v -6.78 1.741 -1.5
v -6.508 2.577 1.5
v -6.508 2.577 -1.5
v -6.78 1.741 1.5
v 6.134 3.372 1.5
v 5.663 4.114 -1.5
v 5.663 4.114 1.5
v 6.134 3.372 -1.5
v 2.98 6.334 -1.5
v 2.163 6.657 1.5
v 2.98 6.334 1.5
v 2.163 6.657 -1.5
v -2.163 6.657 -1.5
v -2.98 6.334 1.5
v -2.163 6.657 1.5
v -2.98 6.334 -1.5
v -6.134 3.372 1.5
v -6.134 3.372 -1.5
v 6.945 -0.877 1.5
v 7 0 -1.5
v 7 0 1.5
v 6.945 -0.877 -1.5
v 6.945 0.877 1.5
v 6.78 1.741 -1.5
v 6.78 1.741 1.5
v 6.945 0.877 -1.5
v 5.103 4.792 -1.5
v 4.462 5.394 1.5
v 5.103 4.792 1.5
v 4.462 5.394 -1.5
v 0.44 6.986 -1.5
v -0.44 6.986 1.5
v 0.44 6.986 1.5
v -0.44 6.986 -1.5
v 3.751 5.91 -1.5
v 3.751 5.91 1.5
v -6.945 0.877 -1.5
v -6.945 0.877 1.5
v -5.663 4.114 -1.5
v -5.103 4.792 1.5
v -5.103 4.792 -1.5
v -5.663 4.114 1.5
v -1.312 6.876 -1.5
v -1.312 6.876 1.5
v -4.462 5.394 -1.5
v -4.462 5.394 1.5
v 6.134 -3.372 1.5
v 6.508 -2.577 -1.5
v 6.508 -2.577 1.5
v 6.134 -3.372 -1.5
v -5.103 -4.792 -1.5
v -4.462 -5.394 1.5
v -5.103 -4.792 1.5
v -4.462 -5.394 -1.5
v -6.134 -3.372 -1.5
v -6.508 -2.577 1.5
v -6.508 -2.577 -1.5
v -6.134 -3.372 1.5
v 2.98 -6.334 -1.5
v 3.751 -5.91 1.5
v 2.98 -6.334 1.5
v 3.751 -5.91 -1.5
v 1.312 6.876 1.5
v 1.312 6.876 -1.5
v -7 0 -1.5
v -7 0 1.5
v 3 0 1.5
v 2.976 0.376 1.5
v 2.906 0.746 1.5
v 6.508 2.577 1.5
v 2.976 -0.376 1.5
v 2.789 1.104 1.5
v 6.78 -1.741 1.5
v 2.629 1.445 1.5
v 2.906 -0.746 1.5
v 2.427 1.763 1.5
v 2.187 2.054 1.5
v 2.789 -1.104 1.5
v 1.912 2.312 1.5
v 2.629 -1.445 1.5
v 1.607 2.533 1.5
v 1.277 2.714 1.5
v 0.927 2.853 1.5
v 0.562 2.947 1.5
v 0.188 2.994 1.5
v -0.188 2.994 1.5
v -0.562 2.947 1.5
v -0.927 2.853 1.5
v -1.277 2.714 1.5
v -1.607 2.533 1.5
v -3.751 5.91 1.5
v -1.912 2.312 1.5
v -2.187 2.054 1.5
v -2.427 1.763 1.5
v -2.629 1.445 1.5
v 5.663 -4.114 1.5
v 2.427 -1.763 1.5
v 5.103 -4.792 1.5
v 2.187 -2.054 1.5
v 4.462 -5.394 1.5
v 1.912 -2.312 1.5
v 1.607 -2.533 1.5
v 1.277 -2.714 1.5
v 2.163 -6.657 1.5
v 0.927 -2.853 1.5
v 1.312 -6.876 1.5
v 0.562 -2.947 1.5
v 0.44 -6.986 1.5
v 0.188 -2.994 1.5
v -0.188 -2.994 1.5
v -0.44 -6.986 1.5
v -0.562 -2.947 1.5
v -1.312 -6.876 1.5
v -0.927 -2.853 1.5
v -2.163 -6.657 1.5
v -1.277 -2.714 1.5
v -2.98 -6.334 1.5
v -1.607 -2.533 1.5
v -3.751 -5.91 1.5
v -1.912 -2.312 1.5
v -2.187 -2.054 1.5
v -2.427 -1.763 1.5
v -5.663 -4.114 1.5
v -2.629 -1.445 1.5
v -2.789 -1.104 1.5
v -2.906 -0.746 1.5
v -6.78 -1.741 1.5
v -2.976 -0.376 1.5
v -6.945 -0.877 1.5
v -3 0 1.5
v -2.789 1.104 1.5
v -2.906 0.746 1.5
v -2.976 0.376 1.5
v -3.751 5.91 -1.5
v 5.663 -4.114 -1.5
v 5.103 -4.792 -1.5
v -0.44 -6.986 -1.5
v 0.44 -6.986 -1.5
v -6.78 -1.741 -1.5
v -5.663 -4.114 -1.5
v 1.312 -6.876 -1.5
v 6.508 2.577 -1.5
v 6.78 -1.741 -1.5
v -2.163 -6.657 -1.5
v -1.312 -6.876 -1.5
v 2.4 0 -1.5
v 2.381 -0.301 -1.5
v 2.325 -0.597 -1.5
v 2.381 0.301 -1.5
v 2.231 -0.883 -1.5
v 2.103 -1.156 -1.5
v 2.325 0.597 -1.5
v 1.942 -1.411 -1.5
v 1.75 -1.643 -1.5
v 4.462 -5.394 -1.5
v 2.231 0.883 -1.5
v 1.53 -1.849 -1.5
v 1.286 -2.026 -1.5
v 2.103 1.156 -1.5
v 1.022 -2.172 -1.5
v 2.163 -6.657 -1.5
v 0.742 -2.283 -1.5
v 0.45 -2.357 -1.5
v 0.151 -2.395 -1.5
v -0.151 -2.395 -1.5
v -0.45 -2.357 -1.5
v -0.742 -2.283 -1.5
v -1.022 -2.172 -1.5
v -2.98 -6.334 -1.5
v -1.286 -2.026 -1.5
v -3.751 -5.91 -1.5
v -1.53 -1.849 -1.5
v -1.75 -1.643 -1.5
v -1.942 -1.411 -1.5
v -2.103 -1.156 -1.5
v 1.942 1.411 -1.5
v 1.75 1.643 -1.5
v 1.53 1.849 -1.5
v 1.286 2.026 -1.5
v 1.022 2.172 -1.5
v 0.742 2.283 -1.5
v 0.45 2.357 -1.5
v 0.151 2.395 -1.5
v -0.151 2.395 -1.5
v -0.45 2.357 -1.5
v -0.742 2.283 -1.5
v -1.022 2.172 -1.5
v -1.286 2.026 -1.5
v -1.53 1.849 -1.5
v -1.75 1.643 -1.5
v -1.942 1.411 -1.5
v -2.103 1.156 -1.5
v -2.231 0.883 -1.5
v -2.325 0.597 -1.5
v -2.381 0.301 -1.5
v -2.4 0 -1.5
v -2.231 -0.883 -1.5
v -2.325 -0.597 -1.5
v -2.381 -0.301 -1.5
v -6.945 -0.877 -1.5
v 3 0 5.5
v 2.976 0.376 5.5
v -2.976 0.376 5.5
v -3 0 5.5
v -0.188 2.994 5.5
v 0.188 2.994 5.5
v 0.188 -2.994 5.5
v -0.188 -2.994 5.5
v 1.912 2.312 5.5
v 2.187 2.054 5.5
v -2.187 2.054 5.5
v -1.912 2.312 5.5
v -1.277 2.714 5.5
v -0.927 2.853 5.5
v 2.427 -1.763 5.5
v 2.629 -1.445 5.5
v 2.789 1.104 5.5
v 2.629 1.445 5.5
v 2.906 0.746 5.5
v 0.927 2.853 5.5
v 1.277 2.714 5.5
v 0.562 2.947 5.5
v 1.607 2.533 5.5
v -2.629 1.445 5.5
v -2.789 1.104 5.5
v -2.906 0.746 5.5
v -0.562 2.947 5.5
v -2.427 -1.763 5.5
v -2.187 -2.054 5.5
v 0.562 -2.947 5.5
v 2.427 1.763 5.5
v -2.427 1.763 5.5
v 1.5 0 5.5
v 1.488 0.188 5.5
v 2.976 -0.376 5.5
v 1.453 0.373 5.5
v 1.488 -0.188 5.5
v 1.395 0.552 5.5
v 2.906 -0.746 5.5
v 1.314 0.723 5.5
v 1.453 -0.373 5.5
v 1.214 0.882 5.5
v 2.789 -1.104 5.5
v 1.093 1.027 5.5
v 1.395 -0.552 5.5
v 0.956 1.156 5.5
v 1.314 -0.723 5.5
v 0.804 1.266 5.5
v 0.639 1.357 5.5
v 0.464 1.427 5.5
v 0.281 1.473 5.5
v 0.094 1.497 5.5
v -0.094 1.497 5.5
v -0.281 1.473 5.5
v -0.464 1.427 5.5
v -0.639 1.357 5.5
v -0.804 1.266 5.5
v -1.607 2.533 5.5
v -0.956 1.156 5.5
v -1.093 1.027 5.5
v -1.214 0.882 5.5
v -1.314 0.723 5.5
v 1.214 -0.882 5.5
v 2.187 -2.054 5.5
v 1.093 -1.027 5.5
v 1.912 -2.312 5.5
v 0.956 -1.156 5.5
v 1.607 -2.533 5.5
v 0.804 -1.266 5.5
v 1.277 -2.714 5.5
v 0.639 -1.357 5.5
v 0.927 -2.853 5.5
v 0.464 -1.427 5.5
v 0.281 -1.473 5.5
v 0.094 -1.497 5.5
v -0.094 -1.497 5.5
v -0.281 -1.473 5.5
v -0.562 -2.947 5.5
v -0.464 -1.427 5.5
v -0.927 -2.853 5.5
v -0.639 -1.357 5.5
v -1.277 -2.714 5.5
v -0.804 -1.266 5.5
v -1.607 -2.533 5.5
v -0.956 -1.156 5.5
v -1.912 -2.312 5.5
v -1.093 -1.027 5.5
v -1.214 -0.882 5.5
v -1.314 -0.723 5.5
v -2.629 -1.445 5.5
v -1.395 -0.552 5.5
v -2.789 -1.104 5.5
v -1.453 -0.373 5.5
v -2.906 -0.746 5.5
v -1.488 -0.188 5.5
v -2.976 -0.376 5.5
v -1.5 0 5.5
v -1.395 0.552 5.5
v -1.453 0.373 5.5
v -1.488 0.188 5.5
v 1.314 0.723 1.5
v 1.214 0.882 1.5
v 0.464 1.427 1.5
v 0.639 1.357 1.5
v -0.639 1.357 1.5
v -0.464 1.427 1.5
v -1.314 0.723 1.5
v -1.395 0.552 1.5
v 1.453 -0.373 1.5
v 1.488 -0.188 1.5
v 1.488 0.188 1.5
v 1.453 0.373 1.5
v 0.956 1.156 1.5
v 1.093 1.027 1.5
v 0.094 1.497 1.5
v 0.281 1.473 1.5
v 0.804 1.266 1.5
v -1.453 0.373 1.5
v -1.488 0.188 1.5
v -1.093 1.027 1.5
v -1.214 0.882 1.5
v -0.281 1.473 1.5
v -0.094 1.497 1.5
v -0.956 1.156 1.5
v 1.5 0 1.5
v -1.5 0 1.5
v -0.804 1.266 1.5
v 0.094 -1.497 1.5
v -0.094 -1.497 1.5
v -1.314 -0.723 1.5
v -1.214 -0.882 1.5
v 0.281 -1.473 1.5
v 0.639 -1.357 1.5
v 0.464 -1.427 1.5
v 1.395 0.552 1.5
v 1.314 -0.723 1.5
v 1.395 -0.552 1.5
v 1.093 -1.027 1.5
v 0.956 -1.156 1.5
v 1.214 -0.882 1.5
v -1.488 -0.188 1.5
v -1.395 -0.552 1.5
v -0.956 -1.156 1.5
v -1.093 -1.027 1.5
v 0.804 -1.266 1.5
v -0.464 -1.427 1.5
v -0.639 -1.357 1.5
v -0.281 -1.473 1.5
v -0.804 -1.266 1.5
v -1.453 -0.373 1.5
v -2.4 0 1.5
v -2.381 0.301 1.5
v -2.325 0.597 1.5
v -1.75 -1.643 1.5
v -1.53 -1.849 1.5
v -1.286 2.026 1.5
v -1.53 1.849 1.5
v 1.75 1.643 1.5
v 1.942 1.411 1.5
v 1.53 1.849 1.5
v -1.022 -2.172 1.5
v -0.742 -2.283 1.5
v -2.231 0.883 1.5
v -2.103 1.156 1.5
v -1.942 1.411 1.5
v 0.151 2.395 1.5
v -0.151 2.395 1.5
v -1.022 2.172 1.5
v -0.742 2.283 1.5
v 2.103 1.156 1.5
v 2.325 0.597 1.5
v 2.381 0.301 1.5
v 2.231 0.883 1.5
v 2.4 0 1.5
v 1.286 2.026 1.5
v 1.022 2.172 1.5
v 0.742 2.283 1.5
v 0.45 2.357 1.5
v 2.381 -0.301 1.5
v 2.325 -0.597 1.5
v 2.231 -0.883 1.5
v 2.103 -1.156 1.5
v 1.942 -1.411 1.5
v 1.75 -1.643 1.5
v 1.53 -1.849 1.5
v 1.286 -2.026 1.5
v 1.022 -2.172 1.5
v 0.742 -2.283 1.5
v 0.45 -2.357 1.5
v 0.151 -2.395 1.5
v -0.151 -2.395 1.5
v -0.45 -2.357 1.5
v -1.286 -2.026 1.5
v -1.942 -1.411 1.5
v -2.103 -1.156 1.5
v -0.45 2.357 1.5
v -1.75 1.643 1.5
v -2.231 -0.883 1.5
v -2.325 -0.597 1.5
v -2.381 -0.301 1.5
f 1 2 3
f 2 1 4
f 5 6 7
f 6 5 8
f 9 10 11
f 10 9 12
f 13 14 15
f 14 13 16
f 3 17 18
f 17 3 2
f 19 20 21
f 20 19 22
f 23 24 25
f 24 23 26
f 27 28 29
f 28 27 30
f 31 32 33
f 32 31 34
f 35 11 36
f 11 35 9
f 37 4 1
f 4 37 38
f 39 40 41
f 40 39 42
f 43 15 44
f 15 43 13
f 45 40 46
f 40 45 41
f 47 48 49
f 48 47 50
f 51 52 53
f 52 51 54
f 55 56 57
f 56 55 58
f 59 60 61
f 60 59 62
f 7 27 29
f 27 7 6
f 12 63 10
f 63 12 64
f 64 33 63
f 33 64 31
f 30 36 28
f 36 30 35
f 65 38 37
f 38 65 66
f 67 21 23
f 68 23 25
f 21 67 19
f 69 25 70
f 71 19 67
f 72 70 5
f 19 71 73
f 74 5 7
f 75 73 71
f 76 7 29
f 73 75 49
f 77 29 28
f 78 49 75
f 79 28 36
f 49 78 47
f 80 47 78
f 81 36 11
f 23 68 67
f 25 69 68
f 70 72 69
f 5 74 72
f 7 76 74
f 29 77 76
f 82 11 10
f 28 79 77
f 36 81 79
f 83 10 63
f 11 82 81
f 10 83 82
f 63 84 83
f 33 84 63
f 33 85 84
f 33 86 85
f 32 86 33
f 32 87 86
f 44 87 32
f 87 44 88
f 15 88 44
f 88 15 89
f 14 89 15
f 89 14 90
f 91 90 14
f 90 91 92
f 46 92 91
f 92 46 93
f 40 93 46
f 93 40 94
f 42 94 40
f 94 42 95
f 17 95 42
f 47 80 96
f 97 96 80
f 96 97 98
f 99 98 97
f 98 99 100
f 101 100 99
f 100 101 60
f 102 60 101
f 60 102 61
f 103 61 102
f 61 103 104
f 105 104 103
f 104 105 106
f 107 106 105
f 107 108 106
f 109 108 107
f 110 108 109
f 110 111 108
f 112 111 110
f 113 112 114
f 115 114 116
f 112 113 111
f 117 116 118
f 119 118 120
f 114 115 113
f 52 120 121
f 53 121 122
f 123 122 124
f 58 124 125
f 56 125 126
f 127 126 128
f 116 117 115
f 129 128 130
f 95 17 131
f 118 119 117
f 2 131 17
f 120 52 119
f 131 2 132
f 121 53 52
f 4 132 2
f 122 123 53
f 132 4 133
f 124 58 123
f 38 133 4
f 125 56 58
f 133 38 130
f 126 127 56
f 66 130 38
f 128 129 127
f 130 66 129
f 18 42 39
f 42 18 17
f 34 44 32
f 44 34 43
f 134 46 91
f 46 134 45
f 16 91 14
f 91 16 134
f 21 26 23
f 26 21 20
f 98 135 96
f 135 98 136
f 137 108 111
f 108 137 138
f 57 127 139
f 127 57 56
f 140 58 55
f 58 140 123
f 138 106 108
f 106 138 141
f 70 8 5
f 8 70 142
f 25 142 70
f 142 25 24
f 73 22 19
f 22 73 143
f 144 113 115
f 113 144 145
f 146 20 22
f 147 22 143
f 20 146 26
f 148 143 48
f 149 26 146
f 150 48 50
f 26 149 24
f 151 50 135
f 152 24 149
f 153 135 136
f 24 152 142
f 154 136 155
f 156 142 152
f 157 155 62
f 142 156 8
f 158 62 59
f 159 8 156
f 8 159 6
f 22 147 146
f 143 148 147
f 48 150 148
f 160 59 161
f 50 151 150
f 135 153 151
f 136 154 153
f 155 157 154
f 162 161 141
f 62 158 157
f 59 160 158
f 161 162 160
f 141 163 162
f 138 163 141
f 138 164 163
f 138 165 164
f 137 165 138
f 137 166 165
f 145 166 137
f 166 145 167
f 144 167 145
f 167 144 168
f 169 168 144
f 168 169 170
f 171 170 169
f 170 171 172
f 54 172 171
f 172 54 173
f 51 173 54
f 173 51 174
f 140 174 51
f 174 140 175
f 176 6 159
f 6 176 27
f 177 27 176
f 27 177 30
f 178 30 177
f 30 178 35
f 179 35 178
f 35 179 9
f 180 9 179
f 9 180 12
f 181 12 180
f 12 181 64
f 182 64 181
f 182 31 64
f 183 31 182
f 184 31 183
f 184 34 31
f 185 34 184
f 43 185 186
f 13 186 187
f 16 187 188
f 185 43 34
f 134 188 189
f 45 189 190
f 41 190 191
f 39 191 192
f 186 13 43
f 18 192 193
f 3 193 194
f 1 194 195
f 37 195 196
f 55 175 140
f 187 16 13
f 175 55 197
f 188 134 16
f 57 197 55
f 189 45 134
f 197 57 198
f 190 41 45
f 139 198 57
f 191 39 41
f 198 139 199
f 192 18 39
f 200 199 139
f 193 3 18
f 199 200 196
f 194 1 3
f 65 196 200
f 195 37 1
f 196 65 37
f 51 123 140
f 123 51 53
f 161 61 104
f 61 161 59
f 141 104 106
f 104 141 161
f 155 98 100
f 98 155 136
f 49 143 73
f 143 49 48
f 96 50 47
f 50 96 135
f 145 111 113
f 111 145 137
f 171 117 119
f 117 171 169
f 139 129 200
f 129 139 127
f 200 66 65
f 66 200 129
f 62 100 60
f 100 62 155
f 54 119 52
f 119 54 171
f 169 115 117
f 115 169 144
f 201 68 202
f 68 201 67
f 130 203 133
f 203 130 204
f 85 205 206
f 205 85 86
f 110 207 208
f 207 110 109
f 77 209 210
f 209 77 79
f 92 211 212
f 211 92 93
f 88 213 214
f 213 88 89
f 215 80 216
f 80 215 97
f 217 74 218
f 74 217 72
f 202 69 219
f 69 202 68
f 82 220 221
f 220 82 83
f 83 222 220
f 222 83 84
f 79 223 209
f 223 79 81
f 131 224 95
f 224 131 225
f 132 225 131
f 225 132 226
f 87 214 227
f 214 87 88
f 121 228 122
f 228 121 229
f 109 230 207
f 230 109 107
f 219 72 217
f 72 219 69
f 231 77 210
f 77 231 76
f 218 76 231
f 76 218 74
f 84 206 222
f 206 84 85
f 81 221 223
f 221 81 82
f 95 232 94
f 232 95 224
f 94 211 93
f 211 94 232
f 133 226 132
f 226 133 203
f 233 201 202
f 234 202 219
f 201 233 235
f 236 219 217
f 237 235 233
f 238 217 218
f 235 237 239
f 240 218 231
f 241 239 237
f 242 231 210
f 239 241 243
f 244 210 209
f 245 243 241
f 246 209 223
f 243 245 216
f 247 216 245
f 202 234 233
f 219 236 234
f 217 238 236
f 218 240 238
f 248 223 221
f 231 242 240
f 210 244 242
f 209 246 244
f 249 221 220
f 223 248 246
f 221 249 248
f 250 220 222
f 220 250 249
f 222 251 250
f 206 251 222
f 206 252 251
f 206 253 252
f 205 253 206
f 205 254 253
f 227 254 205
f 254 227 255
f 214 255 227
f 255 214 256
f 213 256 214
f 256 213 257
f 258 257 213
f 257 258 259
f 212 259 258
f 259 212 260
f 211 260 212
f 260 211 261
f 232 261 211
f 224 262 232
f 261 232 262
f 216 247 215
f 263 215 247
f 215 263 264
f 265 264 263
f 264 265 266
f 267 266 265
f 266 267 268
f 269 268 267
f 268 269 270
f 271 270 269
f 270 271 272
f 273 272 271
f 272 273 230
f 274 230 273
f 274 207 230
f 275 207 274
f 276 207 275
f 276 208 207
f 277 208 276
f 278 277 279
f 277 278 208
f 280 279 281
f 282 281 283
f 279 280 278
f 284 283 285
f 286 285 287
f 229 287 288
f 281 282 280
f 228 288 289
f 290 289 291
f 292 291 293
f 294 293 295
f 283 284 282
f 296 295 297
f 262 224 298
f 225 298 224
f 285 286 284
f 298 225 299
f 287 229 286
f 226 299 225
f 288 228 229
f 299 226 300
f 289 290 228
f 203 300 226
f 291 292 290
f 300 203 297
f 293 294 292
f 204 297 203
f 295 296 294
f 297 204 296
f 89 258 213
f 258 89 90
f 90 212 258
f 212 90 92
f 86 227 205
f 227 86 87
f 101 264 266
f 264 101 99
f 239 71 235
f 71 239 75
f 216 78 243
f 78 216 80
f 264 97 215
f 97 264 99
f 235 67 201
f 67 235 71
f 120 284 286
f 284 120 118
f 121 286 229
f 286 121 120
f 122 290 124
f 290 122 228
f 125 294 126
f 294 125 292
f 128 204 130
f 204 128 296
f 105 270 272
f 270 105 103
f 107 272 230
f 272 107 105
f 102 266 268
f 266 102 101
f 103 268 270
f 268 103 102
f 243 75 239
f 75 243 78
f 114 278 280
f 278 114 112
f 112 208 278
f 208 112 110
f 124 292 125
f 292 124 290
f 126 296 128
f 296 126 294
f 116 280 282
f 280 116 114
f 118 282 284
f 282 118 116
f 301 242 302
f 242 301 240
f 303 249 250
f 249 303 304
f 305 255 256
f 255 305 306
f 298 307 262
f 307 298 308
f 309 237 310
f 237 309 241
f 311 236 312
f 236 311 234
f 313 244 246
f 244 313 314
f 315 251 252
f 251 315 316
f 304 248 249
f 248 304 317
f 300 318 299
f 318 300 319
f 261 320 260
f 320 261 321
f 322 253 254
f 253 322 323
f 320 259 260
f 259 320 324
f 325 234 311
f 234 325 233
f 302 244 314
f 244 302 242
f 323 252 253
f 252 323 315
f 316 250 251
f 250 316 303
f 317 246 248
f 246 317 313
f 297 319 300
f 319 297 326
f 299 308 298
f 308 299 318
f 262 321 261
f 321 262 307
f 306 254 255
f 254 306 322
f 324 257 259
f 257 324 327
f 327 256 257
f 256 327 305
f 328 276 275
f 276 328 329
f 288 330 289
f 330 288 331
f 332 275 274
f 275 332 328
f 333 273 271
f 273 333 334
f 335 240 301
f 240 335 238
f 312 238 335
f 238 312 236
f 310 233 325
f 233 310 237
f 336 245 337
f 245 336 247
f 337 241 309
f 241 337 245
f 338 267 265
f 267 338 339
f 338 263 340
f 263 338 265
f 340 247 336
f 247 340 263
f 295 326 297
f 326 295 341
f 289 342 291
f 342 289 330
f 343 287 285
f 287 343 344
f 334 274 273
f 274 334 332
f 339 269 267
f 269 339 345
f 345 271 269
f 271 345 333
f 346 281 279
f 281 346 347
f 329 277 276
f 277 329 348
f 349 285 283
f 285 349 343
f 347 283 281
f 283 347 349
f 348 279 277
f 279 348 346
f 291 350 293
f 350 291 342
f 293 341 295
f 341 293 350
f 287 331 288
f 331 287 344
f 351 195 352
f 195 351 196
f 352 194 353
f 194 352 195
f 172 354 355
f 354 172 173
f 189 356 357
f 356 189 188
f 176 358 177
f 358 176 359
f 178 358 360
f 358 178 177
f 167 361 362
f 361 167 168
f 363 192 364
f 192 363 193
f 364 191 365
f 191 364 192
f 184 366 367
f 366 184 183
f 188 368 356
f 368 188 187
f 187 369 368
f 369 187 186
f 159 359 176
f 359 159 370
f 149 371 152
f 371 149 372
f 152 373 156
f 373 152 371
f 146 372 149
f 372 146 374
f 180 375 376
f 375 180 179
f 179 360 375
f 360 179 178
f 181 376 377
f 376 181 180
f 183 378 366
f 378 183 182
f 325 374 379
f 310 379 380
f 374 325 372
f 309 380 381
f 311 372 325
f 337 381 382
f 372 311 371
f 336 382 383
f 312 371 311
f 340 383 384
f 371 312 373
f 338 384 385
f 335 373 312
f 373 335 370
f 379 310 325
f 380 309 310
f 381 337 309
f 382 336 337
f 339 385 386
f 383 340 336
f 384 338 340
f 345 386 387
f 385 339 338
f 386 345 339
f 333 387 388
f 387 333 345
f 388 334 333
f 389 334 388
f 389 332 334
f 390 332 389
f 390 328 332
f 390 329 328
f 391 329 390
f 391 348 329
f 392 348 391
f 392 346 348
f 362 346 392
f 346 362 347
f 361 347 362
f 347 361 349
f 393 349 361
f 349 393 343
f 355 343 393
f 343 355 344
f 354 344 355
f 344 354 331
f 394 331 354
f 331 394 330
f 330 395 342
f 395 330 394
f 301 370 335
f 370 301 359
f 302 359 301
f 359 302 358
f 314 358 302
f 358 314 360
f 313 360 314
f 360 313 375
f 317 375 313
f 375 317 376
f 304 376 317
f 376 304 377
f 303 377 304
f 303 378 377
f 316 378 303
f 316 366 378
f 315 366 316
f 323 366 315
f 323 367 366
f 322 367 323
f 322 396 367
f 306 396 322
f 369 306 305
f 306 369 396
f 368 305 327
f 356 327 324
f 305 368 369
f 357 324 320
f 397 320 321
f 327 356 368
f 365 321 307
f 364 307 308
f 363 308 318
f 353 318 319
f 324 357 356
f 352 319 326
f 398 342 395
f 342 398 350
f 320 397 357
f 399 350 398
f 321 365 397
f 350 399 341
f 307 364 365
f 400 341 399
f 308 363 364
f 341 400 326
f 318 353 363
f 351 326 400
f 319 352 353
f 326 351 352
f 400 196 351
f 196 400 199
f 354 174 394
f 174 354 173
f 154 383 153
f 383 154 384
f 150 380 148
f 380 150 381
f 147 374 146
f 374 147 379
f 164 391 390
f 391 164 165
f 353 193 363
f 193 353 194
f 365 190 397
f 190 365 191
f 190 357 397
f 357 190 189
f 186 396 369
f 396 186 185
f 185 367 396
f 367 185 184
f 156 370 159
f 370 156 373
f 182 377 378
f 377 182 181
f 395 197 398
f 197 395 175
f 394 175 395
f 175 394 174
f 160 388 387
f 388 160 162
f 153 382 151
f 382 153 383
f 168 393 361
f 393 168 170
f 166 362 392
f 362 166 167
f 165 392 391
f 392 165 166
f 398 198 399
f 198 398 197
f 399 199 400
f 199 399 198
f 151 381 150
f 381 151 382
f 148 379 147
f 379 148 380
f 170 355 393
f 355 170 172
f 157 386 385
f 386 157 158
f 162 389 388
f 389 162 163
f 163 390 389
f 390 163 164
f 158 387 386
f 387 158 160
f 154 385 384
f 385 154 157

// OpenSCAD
$fn = 50;


difference() {
	union() {
		translate(v = [0, 0, -1.5000000000]) {
			rotate(a = [0, 0, 0]) {
				cylinder(h = 3, r = 7.0000000000);
			}
		}
		translate(v = [0, 0, -1.5000000000]) {
			rotate(a = [0, 0, 0]) {
				cylinder(h = 7, r = 3.0000000000);
			}
		}
	}
	union() {
		translate(v = [0, 0, -125.0000000000]) {
			rotate(a = [0, 0, 0]) {
				cylinder(h = 250, r = 1.5000000000);
			}
		}
		#translate(v = [0, 0, 1.5000000000]) {
			rotate(a = [0, 180, 0]) {
				cylinder(h = 3, r1 = 2.4000000000, r2 = 2.4000000000);
			}
		}
		#translate(v = [0, 0, 5.5000000000]) {
			rotate(a = [0, 180, 0]) {
				cylinder(h = 7, r = 1.5000000000);
			}
		}
	}
}
